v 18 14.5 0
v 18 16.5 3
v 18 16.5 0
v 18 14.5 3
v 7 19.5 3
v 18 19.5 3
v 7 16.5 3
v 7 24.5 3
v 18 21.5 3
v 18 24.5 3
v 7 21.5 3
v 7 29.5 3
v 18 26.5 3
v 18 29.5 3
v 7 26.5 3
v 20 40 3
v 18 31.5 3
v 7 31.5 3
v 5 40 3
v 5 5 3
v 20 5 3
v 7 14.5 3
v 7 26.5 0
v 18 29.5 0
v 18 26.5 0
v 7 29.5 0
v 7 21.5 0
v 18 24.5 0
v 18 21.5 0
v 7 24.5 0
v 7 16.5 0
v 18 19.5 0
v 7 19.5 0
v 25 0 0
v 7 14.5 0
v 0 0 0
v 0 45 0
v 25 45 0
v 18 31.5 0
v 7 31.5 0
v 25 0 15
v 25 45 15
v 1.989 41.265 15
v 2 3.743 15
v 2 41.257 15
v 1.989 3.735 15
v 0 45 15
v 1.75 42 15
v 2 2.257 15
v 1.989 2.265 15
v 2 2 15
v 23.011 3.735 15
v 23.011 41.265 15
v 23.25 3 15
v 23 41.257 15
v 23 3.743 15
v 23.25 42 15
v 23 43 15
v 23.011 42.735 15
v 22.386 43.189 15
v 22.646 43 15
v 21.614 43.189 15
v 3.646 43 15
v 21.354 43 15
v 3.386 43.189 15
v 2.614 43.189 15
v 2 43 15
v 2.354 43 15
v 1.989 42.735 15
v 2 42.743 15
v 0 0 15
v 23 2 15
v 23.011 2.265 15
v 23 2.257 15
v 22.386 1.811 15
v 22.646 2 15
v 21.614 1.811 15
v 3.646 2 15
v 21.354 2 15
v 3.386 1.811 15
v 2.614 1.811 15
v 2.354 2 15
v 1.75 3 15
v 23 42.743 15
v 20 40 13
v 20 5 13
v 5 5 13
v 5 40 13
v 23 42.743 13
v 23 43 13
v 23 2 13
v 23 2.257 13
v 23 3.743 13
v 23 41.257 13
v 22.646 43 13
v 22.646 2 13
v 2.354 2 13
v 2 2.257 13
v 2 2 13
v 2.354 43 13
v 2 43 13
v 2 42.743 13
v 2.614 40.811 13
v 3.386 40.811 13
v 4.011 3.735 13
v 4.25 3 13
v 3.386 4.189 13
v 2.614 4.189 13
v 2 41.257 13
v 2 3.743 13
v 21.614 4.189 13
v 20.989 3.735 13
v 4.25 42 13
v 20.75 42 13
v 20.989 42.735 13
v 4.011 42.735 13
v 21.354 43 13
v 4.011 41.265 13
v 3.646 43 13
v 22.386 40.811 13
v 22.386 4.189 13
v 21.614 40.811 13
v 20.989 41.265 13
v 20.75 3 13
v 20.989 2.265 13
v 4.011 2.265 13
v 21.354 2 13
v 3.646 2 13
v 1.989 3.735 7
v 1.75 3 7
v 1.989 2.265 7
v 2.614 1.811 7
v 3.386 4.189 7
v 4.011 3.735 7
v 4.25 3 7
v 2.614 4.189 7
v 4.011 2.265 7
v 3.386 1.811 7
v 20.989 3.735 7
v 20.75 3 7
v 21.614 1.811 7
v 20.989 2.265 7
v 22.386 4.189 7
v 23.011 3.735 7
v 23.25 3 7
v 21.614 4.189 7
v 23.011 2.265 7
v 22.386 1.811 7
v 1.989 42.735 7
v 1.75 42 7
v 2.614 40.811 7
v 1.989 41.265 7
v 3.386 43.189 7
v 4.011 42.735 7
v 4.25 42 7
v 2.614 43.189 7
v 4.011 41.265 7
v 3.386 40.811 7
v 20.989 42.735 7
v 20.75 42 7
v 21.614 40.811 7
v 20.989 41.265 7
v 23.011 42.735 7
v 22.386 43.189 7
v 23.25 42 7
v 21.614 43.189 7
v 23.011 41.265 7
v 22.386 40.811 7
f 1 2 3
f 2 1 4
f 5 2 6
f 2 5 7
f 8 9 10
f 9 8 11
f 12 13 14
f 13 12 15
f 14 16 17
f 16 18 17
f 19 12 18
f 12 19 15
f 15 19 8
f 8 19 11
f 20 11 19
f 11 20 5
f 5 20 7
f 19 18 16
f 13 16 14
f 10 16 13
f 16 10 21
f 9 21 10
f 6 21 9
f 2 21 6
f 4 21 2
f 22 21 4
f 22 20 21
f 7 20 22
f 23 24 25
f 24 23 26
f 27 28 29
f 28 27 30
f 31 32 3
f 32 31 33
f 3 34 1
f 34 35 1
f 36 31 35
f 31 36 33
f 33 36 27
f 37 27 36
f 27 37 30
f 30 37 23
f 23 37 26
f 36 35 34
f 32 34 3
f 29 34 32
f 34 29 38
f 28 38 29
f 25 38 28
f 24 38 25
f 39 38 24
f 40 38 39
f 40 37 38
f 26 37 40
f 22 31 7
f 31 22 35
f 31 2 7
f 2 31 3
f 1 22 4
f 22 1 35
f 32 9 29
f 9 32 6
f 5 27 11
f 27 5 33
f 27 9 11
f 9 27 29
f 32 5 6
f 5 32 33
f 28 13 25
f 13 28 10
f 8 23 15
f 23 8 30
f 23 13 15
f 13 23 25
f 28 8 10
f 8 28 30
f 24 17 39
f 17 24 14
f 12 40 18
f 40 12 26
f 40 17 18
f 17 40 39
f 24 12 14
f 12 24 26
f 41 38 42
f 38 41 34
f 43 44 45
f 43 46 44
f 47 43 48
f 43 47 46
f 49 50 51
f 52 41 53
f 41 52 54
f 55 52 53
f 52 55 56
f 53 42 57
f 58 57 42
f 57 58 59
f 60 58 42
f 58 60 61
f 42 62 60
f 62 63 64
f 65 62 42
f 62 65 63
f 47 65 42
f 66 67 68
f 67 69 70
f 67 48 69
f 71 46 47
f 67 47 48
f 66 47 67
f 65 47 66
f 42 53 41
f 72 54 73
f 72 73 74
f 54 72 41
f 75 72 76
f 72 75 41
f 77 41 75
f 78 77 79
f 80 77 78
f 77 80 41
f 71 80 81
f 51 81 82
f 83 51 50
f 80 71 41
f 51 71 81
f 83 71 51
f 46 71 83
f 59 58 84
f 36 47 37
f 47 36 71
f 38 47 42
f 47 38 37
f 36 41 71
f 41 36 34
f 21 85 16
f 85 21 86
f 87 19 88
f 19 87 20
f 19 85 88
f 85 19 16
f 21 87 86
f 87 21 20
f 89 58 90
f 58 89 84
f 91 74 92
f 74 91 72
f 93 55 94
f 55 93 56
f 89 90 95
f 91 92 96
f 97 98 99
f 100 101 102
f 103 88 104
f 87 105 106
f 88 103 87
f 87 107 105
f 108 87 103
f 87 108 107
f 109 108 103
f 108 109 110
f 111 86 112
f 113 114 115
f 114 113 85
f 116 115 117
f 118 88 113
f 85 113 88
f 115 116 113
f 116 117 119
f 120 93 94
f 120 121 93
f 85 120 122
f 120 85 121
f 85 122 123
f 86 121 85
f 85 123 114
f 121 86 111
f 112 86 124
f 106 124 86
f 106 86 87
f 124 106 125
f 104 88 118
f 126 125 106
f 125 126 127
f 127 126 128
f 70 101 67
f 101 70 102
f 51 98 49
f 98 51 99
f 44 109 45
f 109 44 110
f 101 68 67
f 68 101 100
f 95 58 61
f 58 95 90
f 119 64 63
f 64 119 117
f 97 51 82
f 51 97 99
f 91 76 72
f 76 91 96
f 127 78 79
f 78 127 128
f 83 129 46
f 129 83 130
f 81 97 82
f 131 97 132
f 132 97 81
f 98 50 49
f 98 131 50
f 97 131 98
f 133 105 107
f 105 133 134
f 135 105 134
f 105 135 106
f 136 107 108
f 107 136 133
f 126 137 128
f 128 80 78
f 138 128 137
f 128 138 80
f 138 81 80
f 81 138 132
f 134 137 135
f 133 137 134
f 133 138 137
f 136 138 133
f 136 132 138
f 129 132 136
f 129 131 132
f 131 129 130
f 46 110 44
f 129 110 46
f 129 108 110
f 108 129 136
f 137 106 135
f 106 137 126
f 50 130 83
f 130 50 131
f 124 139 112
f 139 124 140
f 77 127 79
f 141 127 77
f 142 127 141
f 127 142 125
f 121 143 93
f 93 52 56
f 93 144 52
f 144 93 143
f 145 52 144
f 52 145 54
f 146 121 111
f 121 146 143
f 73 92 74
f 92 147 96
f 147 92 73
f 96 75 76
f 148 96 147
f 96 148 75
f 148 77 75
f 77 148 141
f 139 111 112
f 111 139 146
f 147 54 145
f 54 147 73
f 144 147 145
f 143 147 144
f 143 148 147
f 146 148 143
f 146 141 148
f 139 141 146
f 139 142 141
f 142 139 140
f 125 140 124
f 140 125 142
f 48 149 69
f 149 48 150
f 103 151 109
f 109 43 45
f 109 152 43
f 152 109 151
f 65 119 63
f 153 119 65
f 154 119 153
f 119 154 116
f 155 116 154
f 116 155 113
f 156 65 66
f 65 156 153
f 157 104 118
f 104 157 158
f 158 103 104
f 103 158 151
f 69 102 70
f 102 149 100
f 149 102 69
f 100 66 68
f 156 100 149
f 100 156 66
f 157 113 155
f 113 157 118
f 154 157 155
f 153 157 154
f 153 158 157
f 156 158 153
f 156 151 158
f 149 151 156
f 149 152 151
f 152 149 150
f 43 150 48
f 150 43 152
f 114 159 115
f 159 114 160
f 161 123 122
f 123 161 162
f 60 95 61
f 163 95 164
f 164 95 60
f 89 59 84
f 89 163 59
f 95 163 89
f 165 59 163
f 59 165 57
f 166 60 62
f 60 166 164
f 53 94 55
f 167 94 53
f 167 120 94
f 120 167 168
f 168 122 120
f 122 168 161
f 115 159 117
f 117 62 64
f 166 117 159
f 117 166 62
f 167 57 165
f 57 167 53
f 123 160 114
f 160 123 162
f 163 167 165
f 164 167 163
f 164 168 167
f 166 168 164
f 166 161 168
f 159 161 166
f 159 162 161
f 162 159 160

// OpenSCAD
$fn = 10;

width = 25;
length = 45;
lip = 2;
height = 15;
wall = 5;
hole_d = 2.5;
hole_h = 8;

difference() {
    union() {
        cube([width, length, height], false);
    }
    translate([wall, wall, 3])
        cube([width - 2 * wall, length - 2 * wall, height], false);
    translate([lip, lip, height - lip])
        cube([width - 2 * lip, length - 2 * lip, lip], false);
    // vents
    for (i = [0 : 3]) {
        translate([wall + 2, (length / 2 - 8) + i * 5, 0])
            cube([width - 2 * wall - 4, 2, 3], false);
    }
    // holes
    translate([3, 3, height - hole_h])
        cylinder(hole_h, hole_d / 2, hole_d / 2, false);
    translate([width - 3, 3, height - hole_h])
        cylinder(hole_h, hole_d / 2, hole_d / 2, false);
    translate([3, length - 3, height - hole_h])
        cylinder(hole_h, hole_d / 2, hole_d / 2, false);
    translate([width - 3, length - 3, height - hole_h])
        cylinder(hole_h, hole_d / 2, hole_d / 2, false);
}
